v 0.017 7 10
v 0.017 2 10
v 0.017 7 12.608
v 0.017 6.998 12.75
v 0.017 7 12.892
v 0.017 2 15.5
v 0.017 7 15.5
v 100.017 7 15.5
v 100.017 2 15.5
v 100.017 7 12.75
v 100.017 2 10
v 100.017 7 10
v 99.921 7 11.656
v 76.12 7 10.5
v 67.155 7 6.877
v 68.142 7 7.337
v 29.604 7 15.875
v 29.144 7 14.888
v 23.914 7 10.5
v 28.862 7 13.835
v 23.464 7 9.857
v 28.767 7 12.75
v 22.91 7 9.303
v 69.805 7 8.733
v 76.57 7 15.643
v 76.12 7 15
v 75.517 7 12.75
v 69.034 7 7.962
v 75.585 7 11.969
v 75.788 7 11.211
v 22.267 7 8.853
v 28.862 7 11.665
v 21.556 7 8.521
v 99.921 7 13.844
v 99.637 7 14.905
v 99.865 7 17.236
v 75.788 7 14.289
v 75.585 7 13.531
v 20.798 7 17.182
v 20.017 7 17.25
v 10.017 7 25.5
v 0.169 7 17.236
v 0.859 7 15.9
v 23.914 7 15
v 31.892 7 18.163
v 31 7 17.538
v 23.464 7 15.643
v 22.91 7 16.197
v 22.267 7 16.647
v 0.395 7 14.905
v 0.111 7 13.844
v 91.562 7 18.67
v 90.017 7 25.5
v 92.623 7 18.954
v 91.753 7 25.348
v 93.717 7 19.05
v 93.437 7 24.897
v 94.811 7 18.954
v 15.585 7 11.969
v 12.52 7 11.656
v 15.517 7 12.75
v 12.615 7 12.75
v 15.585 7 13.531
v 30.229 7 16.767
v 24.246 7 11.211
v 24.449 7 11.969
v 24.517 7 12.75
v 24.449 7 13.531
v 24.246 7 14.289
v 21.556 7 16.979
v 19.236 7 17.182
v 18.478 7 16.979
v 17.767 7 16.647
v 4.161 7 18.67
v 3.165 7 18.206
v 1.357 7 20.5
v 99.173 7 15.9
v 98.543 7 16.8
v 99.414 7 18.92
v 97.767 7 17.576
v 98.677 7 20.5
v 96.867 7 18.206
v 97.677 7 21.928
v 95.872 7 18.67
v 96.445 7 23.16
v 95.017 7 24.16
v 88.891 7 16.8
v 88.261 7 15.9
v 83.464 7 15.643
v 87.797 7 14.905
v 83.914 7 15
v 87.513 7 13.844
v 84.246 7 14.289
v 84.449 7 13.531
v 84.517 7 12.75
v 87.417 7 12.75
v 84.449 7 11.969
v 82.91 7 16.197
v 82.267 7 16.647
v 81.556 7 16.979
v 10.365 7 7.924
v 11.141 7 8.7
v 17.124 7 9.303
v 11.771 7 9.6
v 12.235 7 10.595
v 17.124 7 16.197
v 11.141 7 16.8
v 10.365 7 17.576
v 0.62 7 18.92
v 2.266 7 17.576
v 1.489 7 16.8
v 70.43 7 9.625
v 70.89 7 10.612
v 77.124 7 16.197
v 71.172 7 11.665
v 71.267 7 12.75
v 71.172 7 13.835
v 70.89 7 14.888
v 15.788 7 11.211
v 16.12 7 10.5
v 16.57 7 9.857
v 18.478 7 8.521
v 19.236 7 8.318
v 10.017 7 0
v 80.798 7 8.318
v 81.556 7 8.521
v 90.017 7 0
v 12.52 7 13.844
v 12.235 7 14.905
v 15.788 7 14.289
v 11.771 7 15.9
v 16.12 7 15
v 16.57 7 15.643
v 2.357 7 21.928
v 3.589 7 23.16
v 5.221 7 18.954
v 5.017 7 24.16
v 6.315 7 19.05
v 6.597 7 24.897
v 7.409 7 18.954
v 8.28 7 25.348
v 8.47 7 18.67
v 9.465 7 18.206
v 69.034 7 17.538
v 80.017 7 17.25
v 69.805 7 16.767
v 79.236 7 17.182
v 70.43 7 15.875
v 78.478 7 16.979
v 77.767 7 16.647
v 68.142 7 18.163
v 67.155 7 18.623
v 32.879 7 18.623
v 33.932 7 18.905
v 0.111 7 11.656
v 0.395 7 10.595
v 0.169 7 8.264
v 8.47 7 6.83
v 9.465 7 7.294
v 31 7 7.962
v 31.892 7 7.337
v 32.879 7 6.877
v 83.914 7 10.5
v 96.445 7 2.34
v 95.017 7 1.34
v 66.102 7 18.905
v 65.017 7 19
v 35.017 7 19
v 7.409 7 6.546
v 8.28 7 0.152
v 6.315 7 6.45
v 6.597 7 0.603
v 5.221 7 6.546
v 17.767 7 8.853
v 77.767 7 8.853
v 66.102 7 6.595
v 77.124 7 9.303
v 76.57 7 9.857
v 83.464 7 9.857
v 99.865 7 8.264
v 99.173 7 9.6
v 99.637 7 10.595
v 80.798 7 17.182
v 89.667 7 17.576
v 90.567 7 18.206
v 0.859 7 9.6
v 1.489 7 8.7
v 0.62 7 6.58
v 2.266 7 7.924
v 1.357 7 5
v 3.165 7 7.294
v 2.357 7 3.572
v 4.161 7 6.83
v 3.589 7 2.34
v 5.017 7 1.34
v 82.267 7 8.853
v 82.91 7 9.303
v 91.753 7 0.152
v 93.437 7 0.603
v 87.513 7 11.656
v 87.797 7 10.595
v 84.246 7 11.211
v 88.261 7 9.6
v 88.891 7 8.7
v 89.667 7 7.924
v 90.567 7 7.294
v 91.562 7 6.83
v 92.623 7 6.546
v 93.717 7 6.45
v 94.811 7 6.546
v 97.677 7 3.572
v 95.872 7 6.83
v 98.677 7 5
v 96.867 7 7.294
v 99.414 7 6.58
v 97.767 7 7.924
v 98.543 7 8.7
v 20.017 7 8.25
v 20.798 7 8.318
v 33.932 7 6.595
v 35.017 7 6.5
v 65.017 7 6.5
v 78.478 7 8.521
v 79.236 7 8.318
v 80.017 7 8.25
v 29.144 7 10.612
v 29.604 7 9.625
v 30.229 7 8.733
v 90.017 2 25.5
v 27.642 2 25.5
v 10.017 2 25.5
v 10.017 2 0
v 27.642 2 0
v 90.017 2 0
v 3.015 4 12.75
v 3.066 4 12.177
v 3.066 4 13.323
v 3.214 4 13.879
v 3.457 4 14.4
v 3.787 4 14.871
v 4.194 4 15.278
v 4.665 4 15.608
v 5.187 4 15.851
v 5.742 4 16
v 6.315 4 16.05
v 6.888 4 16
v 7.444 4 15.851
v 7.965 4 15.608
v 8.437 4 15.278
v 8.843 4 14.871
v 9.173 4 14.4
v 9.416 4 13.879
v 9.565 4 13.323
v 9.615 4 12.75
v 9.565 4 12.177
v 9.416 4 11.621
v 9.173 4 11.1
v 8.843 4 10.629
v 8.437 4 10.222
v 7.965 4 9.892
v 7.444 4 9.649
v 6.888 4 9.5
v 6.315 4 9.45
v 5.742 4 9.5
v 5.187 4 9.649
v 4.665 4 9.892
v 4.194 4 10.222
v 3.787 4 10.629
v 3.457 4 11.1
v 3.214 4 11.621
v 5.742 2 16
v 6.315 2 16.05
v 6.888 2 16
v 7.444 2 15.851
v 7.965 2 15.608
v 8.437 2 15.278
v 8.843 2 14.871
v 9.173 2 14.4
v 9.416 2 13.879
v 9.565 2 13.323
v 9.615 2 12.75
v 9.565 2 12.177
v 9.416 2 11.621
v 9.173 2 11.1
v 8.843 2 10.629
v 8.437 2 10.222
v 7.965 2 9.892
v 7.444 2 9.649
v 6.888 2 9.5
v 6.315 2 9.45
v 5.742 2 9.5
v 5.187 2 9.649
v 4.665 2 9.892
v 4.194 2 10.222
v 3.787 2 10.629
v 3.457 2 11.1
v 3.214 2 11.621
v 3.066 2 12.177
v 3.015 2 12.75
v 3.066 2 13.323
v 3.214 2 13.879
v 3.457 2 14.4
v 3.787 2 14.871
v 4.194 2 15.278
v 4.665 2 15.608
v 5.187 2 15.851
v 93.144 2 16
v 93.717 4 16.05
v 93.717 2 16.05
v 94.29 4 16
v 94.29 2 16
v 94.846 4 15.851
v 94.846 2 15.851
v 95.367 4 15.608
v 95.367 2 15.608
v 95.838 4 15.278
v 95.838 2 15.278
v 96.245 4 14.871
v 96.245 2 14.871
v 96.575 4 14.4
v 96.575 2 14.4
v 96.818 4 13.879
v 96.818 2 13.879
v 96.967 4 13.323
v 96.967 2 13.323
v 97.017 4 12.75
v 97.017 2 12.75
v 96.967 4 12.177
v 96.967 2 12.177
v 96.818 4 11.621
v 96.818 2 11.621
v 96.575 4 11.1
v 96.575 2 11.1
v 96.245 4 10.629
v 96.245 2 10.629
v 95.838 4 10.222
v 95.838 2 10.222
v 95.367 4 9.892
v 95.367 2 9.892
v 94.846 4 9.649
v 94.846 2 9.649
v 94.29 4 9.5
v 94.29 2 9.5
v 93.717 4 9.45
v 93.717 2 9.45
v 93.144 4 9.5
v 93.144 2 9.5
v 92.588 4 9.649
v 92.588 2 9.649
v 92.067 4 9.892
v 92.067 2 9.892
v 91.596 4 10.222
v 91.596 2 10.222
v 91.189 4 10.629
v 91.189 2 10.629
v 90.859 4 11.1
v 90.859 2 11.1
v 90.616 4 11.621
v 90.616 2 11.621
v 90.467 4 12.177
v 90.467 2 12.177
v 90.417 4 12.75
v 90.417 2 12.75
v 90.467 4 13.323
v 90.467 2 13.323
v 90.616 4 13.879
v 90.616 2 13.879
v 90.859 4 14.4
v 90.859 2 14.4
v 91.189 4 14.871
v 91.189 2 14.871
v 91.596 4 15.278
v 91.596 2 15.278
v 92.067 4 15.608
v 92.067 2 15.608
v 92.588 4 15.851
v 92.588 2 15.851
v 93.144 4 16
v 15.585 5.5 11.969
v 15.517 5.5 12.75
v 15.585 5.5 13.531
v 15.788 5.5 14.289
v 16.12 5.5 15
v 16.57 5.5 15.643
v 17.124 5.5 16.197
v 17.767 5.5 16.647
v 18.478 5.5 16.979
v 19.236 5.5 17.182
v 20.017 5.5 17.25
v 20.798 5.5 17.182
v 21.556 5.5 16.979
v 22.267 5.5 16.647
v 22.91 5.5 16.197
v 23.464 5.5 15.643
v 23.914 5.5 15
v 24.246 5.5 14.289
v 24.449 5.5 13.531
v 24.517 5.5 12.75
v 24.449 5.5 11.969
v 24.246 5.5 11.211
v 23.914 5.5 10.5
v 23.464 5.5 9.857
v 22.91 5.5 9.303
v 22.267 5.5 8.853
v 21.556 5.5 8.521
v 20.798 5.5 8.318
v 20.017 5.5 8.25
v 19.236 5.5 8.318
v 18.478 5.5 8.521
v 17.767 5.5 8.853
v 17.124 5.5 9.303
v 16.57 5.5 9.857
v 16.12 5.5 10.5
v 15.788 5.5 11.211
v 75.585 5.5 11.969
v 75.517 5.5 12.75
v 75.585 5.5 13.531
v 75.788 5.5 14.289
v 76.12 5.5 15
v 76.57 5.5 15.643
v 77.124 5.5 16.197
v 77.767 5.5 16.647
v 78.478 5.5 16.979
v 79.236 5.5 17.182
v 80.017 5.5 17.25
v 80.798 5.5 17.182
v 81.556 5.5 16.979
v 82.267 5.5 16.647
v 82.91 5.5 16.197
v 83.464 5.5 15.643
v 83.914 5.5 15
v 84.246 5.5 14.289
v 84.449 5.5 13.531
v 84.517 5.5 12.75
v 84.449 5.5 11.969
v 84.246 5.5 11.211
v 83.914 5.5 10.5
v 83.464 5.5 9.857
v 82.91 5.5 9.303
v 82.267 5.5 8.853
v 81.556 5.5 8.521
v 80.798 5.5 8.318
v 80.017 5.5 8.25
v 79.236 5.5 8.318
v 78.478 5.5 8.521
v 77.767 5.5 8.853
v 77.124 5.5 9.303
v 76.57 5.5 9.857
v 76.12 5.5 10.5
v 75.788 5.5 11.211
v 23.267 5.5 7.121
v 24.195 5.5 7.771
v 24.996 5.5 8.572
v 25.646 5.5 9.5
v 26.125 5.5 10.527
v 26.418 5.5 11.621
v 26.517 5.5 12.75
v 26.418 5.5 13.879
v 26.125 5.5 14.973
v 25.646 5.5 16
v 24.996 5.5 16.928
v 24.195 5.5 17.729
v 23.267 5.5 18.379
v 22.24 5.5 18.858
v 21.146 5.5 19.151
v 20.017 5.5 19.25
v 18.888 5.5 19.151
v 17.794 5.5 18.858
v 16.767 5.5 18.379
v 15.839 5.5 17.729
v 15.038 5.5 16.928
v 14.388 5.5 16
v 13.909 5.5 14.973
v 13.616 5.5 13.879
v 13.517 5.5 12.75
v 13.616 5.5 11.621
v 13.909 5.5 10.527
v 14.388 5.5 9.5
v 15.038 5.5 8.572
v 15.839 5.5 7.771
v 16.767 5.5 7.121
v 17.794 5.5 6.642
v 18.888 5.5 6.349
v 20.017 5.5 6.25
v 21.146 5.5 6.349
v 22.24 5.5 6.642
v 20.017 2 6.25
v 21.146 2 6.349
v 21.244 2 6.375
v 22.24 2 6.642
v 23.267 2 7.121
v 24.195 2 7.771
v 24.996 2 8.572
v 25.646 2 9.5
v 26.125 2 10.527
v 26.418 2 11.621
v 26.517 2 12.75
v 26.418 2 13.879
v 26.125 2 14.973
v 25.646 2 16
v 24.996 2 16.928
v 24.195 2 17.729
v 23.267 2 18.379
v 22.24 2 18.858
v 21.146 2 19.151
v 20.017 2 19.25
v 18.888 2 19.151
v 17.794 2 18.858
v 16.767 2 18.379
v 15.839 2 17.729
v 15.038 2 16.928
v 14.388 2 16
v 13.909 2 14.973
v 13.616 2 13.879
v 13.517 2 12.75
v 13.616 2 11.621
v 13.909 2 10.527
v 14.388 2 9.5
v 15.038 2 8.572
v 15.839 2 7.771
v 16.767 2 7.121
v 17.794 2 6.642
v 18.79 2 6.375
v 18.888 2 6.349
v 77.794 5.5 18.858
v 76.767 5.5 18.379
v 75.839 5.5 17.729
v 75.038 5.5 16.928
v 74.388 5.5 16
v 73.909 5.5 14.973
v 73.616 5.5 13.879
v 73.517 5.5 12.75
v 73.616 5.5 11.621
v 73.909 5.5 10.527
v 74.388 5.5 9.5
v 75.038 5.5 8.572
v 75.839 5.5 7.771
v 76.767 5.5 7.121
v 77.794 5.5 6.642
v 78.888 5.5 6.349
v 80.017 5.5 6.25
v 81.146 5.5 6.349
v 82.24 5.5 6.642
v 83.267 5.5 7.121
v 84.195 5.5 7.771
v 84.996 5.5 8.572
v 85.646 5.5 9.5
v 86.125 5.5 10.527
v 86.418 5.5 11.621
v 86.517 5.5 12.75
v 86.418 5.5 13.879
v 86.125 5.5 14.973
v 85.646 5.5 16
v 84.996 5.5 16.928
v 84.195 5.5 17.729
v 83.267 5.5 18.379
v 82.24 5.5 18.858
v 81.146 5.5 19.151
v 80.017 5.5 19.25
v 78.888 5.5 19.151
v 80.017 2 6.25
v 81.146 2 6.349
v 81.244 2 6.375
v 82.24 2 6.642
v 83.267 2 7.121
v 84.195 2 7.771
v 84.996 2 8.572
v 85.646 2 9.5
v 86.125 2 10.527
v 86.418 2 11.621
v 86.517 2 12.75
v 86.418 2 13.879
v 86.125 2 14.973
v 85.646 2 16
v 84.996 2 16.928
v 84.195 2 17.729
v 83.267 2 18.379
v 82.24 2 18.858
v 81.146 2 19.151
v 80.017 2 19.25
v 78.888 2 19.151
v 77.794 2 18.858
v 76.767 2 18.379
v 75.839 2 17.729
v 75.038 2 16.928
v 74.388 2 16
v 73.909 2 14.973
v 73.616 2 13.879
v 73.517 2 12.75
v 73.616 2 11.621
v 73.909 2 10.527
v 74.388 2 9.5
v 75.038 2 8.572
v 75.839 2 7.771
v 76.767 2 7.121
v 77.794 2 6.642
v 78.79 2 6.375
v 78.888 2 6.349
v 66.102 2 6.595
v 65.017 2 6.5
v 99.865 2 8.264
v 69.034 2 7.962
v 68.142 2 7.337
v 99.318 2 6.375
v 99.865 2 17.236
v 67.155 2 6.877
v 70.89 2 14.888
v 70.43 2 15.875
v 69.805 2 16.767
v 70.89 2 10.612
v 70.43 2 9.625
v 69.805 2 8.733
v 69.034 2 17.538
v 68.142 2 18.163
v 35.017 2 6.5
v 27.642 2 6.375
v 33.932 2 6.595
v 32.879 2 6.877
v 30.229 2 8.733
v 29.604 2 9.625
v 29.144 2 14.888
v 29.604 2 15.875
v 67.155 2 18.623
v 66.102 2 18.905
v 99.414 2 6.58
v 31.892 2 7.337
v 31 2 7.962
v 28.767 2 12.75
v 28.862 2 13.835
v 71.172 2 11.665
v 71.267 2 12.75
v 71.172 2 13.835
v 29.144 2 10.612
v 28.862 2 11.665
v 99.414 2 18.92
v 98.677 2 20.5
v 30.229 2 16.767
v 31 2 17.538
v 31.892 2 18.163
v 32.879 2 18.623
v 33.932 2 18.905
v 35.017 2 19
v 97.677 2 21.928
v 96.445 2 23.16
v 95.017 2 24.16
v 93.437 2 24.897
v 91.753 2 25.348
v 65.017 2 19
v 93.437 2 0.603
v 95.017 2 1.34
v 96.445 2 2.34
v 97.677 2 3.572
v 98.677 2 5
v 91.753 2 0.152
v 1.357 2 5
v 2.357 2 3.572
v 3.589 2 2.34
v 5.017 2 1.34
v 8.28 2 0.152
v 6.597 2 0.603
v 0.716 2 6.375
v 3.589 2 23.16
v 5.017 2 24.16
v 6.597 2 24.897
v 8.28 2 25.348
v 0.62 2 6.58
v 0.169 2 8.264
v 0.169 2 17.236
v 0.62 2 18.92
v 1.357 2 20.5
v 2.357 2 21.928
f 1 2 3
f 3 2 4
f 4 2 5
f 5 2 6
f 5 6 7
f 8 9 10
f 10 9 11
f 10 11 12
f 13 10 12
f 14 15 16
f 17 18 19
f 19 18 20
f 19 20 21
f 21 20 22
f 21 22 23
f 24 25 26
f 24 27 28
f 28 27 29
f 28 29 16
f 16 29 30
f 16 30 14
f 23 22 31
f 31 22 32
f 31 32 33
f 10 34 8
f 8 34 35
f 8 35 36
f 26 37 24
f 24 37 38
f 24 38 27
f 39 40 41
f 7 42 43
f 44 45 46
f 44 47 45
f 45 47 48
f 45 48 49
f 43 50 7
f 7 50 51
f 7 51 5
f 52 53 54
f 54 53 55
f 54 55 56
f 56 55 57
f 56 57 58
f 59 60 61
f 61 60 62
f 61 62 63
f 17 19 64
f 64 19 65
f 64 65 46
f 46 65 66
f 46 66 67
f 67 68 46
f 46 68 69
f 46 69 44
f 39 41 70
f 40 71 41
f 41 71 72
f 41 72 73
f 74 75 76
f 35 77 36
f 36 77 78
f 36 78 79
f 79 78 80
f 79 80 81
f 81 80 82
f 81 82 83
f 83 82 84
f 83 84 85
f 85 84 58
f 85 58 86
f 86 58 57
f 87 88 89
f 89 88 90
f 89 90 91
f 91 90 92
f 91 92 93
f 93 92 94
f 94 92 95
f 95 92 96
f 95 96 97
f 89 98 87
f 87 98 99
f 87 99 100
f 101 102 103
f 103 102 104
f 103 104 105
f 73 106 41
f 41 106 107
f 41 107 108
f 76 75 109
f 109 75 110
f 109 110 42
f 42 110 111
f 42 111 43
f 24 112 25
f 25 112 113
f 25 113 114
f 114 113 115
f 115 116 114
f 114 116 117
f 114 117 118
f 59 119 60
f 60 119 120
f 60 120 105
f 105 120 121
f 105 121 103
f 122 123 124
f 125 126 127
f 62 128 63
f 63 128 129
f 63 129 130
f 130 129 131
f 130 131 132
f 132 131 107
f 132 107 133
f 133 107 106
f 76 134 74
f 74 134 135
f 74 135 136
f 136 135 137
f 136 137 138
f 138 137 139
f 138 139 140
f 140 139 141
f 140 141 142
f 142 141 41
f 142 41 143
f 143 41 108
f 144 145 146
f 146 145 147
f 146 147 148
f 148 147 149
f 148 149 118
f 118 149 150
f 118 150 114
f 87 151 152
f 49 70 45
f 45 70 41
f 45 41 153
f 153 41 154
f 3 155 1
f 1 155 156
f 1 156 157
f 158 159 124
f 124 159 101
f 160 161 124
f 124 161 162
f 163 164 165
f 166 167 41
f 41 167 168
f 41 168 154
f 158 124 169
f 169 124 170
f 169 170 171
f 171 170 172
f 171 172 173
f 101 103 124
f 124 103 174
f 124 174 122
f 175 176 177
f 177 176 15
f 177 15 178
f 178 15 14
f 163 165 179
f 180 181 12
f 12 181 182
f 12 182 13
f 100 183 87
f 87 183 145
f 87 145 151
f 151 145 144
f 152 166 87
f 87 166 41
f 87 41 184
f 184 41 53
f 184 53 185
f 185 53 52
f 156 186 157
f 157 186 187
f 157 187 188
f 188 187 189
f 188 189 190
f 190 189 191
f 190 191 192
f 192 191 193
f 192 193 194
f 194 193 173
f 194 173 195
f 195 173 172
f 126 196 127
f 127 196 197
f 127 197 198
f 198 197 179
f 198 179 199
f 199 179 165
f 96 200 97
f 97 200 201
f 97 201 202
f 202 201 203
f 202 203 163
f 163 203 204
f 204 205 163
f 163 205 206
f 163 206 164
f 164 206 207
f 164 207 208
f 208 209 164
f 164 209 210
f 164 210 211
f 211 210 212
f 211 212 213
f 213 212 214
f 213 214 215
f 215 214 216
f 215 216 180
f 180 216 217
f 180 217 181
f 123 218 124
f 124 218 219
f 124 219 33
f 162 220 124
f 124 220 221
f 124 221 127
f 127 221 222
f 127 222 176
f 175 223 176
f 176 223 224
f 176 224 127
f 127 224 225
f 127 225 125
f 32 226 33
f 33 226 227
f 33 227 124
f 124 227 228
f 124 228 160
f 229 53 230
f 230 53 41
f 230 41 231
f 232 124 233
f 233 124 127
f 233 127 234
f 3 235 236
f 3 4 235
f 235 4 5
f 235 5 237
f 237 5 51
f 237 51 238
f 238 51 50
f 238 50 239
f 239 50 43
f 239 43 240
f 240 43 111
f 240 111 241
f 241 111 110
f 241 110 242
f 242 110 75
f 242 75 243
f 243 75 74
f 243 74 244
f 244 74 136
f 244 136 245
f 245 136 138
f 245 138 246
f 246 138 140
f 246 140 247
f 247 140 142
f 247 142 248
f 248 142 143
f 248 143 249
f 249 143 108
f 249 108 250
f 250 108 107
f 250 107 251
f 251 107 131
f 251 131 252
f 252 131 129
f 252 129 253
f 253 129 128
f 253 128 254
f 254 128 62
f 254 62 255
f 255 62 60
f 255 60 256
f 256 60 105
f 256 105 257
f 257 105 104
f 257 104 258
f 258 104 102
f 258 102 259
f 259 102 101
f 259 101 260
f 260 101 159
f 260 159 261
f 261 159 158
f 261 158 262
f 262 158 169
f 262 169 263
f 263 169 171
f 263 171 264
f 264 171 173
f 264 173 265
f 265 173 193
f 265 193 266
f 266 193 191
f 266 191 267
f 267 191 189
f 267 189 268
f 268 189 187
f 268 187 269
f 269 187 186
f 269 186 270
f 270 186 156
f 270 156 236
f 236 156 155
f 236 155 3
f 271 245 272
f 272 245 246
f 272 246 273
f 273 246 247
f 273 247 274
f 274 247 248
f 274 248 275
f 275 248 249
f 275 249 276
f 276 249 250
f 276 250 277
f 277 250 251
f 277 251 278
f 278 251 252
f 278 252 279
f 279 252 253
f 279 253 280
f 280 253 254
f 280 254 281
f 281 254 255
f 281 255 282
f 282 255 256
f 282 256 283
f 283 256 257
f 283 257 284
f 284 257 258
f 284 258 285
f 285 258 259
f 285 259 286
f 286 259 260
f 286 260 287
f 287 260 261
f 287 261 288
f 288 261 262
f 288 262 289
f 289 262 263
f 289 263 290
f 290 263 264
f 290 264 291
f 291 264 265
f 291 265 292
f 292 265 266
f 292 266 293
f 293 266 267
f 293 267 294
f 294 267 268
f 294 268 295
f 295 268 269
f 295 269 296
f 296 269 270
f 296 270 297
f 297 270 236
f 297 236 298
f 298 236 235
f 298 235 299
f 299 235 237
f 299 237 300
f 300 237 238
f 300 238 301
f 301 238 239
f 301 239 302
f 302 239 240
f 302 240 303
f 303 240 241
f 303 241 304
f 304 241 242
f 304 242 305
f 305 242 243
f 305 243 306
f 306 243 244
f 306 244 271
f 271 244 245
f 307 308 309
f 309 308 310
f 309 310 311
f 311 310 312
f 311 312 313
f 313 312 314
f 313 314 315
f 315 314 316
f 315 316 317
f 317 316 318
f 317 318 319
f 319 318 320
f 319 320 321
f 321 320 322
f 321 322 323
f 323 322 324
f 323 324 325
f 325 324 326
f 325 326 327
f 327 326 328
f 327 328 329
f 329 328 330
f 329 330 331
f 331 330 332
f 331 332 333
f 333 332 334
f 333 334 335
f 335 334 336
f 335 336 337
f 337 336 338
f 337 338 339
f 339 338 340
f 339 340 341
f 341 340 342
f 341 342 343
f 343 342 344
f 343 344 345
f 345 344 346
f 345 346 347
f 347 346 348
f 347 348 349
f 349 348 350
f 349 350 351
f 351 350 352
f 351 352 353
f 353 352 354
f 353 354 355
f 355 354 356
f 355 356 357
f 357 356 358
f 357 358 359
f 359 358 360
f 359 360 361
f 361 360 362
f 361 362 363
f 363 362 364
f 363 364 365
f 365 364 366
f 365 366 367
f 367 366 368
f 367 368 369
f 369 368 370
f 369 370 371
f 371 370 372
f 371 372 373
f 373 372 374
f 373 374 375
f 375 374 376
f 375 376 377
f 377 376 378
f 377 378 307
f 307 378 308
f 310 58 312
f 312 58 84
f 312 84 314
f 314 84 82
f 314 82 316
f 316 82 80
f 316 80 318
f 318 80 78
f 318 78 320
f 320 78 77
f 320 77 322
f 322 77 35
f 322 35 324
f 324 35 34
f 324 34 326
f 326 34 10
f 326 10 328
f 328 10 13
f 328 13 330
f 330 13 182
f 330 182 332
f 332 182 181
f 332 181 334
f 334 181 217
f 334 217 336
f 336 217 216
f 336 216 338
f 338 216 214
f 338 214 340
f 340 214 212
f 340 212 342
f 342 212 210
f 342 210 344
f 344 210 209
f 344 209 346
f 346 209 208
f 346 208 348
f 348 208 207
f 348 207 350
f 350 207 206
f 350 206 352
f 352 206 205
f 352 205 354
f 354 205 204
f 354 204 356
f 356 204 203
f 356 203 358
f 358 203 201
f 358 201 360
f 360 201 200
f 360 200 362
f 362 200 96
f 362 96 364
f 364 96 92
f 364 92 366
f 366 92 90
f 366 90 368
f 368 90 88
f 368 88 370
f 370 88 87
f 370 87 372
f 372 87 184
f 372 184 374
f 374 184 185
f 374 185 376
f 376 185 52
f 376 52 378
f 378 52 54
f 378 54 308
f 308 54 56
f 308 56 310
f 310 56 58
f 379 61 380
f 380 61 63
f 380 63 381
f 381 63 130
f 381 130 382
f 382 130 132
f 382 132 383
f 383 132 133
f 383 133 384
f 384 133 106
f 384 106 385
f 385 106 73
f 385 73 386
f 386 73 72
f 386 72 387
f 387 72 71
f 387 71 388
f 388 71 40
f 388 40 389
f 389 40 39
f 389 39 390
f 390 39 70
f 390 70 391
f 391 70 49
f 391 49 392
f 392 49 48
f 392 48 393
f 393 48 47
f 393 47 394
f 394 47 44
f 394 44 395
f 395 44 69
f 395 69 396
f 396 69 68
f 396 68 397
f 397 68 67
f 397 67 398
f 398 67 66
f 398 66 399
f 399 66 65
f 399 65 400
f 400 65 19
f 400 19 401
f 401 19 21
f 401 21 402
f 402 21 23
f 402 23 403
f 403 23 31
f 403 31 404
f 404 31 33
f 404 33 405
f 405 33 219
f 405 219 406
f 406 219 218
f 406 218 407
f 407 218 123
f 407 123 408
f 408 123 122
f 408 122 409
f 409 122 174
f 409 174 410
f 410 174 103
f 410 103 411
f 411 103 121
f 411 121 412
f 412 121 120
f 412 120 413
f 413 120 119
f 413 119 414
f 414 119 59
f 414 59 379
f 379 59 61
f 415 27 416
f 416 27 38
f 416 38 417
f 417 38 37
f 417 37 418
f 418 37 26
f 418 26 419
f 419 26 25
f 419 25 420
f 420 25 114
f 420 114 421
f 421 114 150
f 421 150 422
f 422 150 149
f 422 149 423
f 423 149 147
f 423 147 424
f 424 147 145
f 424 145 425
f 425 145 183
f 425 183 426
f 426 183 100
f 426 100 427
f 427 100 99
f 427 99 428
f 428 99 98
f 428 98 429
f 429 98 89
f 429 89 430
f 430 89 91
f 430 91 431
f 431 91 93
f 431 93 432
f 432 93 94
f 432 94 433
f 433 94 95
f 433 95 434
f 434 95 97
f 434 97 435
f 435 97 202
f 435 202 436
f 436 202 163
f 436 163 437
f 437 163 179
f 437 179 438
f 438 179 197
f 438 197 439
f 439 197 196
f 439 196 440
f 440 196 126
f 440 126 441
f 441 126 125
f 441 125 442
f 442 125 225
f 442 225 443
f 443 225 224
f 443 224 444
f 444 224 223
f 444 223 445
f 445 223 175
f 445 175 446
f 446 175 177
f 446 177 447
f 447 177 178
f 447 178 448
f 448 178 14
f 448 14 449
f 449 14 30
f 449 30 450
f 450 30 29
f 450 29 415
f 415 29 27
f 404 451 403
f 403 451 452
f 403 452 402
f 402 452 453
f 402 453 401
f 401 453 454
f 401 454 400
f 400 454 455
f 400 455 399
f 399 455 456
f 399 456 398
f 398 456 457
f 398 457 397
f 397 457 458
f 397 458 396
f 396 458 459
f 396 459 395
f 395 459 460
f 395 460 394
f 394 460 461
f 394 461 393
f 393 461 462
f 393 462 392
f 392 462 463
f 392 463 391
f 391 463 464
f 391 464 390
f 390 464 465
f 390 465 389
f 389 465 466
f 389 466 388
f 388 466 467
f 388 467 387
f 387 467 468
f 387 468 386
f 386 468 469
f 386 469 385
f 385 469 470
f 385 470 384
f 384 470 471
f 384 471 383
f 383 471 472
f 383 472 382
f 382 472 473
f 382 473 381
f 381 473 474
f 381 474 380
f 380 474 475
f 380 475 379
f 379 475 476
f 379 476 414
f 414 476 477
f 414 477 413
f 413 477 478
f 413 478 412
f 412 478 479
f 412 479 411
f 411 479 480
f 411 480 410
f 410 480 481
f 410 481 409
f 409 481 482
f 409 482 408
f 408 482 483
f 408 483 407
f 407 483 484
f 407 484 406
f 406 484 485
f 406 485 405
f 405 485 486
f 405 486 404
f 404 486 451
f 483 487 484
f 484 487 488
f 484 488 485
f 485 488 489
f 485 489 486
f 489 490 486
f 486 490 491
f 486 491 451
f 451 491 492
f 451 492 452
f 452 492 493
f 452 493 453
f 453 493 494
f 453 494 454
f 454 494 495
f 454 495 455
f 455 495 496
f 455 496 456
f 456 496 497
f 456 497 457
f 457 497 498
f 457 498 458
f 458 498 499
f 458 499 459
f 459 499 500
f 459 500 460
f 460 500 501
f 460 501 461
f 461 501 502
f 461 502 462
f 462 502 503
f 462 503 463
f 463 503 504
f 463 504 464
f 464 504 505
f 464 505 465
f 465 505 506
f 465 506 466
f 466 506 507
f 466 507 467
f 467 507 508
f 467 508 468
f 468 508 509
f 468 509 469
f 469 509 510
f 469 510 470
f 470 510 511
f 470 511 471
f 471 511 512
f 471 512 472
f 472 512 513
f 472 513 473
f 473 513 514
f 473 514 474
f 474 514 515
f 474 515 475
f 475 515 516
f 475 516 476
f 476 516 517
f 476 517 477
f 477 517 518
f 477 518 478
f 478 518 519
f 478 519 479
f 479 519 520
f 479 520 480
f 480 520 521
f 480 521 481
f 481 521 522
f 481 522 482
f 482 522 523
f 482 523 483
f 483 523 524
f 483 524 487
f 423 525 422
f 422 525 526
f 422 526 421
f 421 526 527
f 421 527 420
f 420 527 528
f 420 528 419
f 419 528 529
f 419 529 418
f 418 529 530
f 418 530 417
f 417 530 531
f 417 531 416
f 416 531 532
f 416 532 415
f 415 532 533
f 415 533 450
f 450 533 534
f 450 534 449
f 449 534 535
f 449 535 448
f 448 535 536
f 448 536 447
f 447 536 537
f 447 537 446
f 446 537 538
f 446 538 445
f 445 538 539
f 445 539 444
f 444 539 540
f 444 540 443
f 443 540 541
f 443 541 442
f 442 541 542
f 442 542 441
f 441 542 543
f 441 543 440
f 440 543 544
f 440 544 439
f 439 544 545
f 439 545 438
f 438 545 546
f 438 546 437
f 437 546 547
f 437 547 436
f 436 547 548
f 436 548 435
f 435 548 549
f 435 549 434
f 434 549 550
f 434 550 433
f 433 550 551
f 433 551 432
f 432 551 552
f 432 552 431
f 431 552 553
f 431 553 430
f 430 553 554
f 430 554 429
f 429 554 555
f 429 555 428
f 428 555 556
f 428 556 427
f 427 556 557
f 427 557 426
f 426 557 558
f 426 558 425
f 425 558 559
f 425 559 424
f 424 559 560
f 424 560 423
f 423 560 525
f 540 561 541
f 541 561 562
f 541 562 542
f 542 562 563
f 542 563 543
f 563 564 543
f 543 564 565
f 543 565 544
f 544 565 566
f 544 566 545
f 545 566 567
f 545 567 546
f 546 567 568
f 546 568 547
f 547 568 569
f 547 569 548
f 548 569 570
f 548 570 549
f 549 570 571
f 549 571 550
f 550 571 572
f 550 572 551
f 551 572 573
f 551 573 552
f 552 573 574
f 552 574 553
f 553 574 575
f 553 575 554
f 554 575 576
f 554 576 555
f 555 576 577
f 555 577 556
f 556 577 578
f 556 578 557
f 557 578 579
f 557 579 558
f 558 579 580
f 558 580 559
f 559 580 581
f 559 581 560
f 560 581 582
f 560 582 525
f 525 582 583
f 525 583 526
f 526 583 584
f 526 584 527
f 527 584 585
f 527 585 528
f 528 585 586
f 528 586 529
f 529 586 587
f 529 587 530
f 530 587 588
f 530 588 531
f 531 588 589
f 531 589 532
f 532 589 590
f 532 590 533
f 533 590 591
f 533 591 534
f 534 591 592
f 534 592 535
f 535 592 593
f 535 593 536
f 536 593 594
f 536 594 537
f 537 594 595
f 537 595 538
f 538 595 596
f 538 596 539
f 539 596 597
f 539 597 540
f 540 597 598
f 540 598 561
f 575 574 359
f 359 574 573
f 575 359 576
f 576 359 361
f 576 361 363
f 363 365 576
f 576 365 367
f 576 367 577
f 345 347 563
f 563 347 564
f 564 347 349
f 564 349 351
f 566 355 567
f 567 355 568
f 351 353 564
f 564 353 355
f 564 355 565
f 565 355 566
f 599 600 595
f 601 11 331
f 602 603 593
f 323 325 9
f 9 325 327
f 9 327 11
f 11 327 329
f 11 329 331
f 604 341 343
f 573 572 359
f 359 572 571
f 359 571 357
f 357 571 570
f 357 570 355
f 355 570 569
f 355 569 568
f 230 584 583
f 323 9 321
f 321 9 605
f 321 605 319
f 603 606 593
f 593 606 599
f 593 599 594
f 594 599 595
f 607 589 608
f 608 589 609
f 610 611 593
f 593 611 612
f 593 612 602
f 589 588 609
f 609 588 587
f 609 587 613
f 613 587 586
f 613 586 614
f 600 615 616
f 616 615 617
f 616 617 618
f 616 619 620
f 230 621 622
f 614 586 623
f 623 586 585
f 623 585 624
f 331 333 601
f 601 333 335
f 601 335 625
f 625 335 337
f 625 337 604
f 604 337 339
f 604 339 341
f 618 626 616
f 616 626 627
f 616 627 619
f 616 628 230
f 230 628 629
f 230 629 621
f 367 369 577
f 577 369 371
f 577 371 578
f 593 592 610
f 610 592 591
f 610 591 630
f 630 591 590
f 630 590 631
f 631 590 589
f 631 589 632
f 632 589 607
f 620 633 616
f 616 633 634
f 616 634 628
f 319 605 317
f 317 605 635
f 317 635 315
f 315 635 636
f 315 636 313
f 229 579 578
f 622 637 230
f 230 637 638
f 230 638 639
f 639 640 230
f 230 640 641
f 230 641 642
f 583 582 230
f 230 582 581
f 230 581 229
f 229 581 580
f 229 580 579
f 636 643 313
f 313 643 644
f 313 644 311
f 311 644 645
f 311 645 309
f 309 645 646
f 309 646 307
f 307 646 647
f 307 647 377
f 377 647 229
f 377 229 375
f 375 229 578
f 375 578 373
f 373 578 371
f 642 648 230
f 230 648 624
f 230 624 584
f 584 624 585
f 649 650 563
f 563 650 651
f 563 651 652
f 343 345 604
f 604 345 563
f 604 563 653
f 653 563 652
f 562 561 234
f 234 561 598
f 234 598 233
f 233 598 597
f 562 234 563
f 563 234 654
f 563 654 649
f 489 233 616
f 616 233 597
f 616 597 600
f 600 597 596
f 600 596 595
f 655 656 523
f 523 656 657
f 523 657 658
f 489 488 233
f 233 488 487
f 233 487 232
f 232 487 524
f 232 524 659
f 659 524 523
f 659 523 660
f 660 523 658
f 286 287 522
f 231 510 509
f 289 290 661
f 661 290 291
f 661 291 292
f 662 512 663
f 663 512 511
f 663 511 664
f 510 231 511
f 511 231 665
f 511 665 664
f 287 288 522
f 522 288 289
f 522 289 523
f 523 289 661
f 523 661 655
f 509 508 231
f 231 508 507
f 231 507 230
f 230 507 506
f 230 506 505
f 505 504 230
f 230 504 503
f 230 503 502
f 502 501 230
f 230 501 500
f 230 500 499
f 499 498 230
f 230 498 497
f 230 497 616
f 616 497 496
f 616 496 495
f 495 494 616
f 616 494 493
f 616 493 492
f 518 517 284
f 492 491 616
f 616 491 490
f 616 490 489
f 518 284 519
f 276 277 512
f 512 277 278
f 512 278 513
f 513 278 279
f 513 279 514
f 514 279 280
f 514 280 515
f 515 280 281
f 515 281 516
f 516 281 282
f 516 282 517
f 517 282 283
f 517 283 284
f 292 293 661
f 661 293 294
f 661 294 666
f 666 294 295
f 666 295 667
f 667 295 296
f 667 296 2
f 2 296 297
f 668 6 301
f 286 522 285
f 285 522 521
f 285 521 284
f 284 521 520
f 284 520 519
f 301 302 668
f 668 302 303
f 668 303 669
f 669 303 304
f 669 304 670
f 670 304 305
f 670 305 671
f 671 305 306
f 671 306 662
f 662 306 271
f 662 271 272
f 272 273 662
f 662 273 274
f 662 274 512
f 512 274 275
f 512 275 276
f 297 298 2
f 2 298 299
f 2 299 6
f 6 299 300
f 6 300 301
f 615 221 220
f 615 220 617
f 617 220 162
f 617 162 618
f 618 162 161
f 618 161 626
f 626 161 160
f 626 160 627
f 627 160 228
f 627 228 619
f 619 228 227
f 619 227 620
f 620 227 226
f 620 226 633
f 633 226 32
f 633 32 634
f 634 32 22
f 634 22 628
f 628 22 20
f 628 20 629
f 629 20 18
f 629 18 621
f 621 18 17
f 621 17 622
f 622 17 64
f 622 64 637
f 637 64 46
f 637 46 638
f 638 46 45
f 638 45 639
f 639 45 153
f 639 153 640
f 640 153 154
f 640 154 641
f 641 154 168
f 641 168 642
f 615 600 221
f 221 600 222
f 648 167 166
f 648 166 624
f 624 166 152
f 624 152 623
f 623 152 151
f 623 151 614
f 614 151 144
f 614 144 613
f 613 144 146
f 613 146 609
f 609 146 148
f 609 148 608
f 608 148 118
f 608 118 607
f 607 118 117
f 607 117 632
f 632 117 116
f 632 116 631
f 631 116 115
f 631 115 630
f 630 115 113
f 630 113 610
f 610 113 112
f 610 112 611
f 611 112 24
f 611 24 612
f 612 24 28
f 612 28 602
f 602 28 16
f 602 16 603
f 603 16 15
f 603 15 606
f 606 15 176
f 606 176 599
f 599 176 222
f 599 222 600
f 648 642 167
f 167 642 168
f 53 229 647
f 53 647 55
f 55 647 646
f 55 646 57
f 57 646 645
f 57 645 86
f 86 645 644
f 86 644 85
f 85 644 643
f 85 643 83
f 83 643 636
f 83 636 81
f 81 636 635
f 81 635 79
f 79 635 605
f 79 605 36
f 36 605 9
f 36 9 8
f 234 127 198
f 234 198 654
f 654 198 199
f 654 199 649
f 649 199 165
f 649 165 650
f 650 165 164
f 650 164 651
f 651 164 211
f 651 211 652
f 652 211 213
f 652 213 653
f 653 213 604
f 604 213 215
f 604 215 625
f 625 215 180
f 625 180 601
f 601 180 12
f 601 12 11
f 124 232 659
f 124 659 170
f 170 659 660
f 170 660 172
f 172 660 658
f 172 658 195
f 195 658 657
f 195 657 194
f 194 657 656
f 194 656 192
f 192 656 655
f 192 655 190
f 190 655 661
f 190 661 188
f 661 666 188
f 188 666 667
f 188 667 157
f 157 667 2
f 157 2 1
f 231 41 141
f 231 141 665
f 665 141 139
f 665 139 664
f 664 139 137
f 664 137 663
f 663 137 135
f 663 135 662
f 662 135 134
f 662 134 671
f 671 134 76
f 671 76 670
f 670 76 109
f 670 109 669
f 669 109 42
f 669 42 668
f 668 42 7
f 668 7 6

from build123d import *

# Parameters (mm, degrees)
SKETCH1_W                                           = 100
SKETCH1_H                                           = 7
BOSS_EXTRUDE1_DEPTH                                 = 25.5
CSK_FOR_M6_COUNTERSUNK_FLAT_HEAD_SCREW1_D           = 6.6
CSK_FOR_M6_COUNTERSUNK_FLAT_HEAD_SCREW1_CSINK_D     = 12.6
CSK_FOR_M6_COUNTERSUNK_FLAT_HEAD_SCREW1_CSINK_ANGLE = 90
SKETCH2_R                                           = 4.5
CUT_EXTRUDE2_DEPTH                                  = 3
SKETCH2_4_R                                         = 4.5
CUT_EXTRUDE3_DEPTH                                  = 3
SKETCH6_R                                           = 6.5
CUT_EXTRUDE4_DEPTH                                  = 1.5
SKETCH9_R                                           = 6.5
CUT_EXTRUDE5_DEPTH                                  = 5
SKETCH10_W                                          = 100
SKETCH10_H                                          = 25.5
CUT_EXTRUDE6_DEPTH                                  = 2
CUT_EXTRUDE7_DEPTH                                  = 6
FILLET4_R                                           = 10


with BuildPart() as part:
    # Sketch1 → Boss-Extrude1 (new body)
    with BuildSketch(Plane.XY):
        with Locations((50, 3.5)):
            Rectangle(SKETCH1_W, SKETCH1_H)
    extrude(amount=BOSS_EXTRUDE1_DEPTH)

    # CSK for M6 Countersunk Flat Head Screw1 (through all)
    with Locations(Plane(origin=(0, 7, 0), x_dir=(1, 0, 0), z_dir=(0, 1, 0))):
        with Locations((93.7, -12.75), (6.298395044, -12.75)):
            CounterSinkHole(CSK_FOR_M6_COUNTERSUNK_FLAT_HEAD_SCREW1_D / 2, CSK_FOR_M6_COUNTERSUNK_FLAT_HEAD_SCREW1_CSINK_D / 2, counter_sink_angle=CSK_FOR_M6_COUNTERSUNK_FLAT_HEAD_SCREW1_CSINK_ANGLE)

    # Sketch2 → Cut-Extrude2 (cut)
    with BuildSketch(Plane(origin=(0, 7, 0), x_dir=(1, 0, 0), z_dir=(0, 1, 0))):
        with Locations((20, -12.75)):
            Circle(SKETCH2_R)
    extrude(amount=-CUT_EXTRUDE2_DEPTH, mode=Mode.SUBTRACT)

    # Sketch2<4> → Cut-Extrude3 (cut)
    with BuildSketch(Plane(origin=(0, 7, 0), x_dir=(1, 0, 0), z_dir=(0, 1, 0))):
        with Locations((80, -12.75)):
            Circle(SKETCH2_4_R)
        with Locations((20, -12.75)):
            Circle(SKETCH2_4_R)
    extrude(amount=-CUT_EXTRUDE3_DEPTH, mode=Mode.SUBTRACT)

    # Sketch6 → Cut-Extrude4 (cut)
    with BuildSketch(Plane(origin=(0, 4, 0), x_dir=(1, 0, 0), z_dir=(0, 1, 0))):
        with Locations((20, -12.75)):
            Circle(SKETCH6_R)
        with Locations((80, -12.75)):
            Circle(SKETCH6_R)
    extrude(amount=CUT_EXTRUDE4_DEPTH, mode=Mode.SUBTRACT)

    # Sketch9 → Cut-Extrude5 (cut, through all)
    with BuildSketch(Plane(origin=(0, 4, 0), x_dir=(1, 0, 0), z_dir=(0, 1, 0))):
        with Locations((20, -12.75)):
            Circle(SKETCH9_R)
        with Locations((80, -12.75)):
            Circle(SKETCH9_R)
    extrude(amount=-CUT_EXTRUDE5_DEPTH, mode=Mode.SUBTRACT)

    # Sketch10 → Cut-Extrude6 (cut)
    with BuildSketch(Plane.XZ):
        with Locations((50, 12.75)):
            Rectangle(SKETCH10_W, SKETCH10_H)
    extrude(amount=-CUT_EXTRUDE6_DEPTH, mode=Mode.SUBTRACT)

    # Sketch11 → Cut-Extrude7 (cut, through all)
    with BuildSketch(Plane(origin=(0, 7, 0), x_dir=(1, 0, 0), z_dir=(0, 1, 0))):
        with BuildLine():
            Line((35, -19), (65, -19))
            ThreePointArc((65, -19), (71.25, -12.75), (65, -6.5))
            Line((65, -6.5), (35, -6.5))
            ThreePointArc((35, -6.5), (28.75, -12.75), (35, -19))
        make_face()
    extrude(amount=-CUT_EXTRUDE7_DEPTH, mode=Mode.SUBTRACT)

    # Fillet4
    fillet4_edges = [part.edges().sort_by_distance(p)[0] for p in [
        (100, 4.5, 25.5),
        (100, 4.5, 0),
        (0, 4.5, 0),
        (0, 4.5, 25.5),
    ]]
    fillet(fillet4_edges, radius=FILLET4_R)


solid = part.part
